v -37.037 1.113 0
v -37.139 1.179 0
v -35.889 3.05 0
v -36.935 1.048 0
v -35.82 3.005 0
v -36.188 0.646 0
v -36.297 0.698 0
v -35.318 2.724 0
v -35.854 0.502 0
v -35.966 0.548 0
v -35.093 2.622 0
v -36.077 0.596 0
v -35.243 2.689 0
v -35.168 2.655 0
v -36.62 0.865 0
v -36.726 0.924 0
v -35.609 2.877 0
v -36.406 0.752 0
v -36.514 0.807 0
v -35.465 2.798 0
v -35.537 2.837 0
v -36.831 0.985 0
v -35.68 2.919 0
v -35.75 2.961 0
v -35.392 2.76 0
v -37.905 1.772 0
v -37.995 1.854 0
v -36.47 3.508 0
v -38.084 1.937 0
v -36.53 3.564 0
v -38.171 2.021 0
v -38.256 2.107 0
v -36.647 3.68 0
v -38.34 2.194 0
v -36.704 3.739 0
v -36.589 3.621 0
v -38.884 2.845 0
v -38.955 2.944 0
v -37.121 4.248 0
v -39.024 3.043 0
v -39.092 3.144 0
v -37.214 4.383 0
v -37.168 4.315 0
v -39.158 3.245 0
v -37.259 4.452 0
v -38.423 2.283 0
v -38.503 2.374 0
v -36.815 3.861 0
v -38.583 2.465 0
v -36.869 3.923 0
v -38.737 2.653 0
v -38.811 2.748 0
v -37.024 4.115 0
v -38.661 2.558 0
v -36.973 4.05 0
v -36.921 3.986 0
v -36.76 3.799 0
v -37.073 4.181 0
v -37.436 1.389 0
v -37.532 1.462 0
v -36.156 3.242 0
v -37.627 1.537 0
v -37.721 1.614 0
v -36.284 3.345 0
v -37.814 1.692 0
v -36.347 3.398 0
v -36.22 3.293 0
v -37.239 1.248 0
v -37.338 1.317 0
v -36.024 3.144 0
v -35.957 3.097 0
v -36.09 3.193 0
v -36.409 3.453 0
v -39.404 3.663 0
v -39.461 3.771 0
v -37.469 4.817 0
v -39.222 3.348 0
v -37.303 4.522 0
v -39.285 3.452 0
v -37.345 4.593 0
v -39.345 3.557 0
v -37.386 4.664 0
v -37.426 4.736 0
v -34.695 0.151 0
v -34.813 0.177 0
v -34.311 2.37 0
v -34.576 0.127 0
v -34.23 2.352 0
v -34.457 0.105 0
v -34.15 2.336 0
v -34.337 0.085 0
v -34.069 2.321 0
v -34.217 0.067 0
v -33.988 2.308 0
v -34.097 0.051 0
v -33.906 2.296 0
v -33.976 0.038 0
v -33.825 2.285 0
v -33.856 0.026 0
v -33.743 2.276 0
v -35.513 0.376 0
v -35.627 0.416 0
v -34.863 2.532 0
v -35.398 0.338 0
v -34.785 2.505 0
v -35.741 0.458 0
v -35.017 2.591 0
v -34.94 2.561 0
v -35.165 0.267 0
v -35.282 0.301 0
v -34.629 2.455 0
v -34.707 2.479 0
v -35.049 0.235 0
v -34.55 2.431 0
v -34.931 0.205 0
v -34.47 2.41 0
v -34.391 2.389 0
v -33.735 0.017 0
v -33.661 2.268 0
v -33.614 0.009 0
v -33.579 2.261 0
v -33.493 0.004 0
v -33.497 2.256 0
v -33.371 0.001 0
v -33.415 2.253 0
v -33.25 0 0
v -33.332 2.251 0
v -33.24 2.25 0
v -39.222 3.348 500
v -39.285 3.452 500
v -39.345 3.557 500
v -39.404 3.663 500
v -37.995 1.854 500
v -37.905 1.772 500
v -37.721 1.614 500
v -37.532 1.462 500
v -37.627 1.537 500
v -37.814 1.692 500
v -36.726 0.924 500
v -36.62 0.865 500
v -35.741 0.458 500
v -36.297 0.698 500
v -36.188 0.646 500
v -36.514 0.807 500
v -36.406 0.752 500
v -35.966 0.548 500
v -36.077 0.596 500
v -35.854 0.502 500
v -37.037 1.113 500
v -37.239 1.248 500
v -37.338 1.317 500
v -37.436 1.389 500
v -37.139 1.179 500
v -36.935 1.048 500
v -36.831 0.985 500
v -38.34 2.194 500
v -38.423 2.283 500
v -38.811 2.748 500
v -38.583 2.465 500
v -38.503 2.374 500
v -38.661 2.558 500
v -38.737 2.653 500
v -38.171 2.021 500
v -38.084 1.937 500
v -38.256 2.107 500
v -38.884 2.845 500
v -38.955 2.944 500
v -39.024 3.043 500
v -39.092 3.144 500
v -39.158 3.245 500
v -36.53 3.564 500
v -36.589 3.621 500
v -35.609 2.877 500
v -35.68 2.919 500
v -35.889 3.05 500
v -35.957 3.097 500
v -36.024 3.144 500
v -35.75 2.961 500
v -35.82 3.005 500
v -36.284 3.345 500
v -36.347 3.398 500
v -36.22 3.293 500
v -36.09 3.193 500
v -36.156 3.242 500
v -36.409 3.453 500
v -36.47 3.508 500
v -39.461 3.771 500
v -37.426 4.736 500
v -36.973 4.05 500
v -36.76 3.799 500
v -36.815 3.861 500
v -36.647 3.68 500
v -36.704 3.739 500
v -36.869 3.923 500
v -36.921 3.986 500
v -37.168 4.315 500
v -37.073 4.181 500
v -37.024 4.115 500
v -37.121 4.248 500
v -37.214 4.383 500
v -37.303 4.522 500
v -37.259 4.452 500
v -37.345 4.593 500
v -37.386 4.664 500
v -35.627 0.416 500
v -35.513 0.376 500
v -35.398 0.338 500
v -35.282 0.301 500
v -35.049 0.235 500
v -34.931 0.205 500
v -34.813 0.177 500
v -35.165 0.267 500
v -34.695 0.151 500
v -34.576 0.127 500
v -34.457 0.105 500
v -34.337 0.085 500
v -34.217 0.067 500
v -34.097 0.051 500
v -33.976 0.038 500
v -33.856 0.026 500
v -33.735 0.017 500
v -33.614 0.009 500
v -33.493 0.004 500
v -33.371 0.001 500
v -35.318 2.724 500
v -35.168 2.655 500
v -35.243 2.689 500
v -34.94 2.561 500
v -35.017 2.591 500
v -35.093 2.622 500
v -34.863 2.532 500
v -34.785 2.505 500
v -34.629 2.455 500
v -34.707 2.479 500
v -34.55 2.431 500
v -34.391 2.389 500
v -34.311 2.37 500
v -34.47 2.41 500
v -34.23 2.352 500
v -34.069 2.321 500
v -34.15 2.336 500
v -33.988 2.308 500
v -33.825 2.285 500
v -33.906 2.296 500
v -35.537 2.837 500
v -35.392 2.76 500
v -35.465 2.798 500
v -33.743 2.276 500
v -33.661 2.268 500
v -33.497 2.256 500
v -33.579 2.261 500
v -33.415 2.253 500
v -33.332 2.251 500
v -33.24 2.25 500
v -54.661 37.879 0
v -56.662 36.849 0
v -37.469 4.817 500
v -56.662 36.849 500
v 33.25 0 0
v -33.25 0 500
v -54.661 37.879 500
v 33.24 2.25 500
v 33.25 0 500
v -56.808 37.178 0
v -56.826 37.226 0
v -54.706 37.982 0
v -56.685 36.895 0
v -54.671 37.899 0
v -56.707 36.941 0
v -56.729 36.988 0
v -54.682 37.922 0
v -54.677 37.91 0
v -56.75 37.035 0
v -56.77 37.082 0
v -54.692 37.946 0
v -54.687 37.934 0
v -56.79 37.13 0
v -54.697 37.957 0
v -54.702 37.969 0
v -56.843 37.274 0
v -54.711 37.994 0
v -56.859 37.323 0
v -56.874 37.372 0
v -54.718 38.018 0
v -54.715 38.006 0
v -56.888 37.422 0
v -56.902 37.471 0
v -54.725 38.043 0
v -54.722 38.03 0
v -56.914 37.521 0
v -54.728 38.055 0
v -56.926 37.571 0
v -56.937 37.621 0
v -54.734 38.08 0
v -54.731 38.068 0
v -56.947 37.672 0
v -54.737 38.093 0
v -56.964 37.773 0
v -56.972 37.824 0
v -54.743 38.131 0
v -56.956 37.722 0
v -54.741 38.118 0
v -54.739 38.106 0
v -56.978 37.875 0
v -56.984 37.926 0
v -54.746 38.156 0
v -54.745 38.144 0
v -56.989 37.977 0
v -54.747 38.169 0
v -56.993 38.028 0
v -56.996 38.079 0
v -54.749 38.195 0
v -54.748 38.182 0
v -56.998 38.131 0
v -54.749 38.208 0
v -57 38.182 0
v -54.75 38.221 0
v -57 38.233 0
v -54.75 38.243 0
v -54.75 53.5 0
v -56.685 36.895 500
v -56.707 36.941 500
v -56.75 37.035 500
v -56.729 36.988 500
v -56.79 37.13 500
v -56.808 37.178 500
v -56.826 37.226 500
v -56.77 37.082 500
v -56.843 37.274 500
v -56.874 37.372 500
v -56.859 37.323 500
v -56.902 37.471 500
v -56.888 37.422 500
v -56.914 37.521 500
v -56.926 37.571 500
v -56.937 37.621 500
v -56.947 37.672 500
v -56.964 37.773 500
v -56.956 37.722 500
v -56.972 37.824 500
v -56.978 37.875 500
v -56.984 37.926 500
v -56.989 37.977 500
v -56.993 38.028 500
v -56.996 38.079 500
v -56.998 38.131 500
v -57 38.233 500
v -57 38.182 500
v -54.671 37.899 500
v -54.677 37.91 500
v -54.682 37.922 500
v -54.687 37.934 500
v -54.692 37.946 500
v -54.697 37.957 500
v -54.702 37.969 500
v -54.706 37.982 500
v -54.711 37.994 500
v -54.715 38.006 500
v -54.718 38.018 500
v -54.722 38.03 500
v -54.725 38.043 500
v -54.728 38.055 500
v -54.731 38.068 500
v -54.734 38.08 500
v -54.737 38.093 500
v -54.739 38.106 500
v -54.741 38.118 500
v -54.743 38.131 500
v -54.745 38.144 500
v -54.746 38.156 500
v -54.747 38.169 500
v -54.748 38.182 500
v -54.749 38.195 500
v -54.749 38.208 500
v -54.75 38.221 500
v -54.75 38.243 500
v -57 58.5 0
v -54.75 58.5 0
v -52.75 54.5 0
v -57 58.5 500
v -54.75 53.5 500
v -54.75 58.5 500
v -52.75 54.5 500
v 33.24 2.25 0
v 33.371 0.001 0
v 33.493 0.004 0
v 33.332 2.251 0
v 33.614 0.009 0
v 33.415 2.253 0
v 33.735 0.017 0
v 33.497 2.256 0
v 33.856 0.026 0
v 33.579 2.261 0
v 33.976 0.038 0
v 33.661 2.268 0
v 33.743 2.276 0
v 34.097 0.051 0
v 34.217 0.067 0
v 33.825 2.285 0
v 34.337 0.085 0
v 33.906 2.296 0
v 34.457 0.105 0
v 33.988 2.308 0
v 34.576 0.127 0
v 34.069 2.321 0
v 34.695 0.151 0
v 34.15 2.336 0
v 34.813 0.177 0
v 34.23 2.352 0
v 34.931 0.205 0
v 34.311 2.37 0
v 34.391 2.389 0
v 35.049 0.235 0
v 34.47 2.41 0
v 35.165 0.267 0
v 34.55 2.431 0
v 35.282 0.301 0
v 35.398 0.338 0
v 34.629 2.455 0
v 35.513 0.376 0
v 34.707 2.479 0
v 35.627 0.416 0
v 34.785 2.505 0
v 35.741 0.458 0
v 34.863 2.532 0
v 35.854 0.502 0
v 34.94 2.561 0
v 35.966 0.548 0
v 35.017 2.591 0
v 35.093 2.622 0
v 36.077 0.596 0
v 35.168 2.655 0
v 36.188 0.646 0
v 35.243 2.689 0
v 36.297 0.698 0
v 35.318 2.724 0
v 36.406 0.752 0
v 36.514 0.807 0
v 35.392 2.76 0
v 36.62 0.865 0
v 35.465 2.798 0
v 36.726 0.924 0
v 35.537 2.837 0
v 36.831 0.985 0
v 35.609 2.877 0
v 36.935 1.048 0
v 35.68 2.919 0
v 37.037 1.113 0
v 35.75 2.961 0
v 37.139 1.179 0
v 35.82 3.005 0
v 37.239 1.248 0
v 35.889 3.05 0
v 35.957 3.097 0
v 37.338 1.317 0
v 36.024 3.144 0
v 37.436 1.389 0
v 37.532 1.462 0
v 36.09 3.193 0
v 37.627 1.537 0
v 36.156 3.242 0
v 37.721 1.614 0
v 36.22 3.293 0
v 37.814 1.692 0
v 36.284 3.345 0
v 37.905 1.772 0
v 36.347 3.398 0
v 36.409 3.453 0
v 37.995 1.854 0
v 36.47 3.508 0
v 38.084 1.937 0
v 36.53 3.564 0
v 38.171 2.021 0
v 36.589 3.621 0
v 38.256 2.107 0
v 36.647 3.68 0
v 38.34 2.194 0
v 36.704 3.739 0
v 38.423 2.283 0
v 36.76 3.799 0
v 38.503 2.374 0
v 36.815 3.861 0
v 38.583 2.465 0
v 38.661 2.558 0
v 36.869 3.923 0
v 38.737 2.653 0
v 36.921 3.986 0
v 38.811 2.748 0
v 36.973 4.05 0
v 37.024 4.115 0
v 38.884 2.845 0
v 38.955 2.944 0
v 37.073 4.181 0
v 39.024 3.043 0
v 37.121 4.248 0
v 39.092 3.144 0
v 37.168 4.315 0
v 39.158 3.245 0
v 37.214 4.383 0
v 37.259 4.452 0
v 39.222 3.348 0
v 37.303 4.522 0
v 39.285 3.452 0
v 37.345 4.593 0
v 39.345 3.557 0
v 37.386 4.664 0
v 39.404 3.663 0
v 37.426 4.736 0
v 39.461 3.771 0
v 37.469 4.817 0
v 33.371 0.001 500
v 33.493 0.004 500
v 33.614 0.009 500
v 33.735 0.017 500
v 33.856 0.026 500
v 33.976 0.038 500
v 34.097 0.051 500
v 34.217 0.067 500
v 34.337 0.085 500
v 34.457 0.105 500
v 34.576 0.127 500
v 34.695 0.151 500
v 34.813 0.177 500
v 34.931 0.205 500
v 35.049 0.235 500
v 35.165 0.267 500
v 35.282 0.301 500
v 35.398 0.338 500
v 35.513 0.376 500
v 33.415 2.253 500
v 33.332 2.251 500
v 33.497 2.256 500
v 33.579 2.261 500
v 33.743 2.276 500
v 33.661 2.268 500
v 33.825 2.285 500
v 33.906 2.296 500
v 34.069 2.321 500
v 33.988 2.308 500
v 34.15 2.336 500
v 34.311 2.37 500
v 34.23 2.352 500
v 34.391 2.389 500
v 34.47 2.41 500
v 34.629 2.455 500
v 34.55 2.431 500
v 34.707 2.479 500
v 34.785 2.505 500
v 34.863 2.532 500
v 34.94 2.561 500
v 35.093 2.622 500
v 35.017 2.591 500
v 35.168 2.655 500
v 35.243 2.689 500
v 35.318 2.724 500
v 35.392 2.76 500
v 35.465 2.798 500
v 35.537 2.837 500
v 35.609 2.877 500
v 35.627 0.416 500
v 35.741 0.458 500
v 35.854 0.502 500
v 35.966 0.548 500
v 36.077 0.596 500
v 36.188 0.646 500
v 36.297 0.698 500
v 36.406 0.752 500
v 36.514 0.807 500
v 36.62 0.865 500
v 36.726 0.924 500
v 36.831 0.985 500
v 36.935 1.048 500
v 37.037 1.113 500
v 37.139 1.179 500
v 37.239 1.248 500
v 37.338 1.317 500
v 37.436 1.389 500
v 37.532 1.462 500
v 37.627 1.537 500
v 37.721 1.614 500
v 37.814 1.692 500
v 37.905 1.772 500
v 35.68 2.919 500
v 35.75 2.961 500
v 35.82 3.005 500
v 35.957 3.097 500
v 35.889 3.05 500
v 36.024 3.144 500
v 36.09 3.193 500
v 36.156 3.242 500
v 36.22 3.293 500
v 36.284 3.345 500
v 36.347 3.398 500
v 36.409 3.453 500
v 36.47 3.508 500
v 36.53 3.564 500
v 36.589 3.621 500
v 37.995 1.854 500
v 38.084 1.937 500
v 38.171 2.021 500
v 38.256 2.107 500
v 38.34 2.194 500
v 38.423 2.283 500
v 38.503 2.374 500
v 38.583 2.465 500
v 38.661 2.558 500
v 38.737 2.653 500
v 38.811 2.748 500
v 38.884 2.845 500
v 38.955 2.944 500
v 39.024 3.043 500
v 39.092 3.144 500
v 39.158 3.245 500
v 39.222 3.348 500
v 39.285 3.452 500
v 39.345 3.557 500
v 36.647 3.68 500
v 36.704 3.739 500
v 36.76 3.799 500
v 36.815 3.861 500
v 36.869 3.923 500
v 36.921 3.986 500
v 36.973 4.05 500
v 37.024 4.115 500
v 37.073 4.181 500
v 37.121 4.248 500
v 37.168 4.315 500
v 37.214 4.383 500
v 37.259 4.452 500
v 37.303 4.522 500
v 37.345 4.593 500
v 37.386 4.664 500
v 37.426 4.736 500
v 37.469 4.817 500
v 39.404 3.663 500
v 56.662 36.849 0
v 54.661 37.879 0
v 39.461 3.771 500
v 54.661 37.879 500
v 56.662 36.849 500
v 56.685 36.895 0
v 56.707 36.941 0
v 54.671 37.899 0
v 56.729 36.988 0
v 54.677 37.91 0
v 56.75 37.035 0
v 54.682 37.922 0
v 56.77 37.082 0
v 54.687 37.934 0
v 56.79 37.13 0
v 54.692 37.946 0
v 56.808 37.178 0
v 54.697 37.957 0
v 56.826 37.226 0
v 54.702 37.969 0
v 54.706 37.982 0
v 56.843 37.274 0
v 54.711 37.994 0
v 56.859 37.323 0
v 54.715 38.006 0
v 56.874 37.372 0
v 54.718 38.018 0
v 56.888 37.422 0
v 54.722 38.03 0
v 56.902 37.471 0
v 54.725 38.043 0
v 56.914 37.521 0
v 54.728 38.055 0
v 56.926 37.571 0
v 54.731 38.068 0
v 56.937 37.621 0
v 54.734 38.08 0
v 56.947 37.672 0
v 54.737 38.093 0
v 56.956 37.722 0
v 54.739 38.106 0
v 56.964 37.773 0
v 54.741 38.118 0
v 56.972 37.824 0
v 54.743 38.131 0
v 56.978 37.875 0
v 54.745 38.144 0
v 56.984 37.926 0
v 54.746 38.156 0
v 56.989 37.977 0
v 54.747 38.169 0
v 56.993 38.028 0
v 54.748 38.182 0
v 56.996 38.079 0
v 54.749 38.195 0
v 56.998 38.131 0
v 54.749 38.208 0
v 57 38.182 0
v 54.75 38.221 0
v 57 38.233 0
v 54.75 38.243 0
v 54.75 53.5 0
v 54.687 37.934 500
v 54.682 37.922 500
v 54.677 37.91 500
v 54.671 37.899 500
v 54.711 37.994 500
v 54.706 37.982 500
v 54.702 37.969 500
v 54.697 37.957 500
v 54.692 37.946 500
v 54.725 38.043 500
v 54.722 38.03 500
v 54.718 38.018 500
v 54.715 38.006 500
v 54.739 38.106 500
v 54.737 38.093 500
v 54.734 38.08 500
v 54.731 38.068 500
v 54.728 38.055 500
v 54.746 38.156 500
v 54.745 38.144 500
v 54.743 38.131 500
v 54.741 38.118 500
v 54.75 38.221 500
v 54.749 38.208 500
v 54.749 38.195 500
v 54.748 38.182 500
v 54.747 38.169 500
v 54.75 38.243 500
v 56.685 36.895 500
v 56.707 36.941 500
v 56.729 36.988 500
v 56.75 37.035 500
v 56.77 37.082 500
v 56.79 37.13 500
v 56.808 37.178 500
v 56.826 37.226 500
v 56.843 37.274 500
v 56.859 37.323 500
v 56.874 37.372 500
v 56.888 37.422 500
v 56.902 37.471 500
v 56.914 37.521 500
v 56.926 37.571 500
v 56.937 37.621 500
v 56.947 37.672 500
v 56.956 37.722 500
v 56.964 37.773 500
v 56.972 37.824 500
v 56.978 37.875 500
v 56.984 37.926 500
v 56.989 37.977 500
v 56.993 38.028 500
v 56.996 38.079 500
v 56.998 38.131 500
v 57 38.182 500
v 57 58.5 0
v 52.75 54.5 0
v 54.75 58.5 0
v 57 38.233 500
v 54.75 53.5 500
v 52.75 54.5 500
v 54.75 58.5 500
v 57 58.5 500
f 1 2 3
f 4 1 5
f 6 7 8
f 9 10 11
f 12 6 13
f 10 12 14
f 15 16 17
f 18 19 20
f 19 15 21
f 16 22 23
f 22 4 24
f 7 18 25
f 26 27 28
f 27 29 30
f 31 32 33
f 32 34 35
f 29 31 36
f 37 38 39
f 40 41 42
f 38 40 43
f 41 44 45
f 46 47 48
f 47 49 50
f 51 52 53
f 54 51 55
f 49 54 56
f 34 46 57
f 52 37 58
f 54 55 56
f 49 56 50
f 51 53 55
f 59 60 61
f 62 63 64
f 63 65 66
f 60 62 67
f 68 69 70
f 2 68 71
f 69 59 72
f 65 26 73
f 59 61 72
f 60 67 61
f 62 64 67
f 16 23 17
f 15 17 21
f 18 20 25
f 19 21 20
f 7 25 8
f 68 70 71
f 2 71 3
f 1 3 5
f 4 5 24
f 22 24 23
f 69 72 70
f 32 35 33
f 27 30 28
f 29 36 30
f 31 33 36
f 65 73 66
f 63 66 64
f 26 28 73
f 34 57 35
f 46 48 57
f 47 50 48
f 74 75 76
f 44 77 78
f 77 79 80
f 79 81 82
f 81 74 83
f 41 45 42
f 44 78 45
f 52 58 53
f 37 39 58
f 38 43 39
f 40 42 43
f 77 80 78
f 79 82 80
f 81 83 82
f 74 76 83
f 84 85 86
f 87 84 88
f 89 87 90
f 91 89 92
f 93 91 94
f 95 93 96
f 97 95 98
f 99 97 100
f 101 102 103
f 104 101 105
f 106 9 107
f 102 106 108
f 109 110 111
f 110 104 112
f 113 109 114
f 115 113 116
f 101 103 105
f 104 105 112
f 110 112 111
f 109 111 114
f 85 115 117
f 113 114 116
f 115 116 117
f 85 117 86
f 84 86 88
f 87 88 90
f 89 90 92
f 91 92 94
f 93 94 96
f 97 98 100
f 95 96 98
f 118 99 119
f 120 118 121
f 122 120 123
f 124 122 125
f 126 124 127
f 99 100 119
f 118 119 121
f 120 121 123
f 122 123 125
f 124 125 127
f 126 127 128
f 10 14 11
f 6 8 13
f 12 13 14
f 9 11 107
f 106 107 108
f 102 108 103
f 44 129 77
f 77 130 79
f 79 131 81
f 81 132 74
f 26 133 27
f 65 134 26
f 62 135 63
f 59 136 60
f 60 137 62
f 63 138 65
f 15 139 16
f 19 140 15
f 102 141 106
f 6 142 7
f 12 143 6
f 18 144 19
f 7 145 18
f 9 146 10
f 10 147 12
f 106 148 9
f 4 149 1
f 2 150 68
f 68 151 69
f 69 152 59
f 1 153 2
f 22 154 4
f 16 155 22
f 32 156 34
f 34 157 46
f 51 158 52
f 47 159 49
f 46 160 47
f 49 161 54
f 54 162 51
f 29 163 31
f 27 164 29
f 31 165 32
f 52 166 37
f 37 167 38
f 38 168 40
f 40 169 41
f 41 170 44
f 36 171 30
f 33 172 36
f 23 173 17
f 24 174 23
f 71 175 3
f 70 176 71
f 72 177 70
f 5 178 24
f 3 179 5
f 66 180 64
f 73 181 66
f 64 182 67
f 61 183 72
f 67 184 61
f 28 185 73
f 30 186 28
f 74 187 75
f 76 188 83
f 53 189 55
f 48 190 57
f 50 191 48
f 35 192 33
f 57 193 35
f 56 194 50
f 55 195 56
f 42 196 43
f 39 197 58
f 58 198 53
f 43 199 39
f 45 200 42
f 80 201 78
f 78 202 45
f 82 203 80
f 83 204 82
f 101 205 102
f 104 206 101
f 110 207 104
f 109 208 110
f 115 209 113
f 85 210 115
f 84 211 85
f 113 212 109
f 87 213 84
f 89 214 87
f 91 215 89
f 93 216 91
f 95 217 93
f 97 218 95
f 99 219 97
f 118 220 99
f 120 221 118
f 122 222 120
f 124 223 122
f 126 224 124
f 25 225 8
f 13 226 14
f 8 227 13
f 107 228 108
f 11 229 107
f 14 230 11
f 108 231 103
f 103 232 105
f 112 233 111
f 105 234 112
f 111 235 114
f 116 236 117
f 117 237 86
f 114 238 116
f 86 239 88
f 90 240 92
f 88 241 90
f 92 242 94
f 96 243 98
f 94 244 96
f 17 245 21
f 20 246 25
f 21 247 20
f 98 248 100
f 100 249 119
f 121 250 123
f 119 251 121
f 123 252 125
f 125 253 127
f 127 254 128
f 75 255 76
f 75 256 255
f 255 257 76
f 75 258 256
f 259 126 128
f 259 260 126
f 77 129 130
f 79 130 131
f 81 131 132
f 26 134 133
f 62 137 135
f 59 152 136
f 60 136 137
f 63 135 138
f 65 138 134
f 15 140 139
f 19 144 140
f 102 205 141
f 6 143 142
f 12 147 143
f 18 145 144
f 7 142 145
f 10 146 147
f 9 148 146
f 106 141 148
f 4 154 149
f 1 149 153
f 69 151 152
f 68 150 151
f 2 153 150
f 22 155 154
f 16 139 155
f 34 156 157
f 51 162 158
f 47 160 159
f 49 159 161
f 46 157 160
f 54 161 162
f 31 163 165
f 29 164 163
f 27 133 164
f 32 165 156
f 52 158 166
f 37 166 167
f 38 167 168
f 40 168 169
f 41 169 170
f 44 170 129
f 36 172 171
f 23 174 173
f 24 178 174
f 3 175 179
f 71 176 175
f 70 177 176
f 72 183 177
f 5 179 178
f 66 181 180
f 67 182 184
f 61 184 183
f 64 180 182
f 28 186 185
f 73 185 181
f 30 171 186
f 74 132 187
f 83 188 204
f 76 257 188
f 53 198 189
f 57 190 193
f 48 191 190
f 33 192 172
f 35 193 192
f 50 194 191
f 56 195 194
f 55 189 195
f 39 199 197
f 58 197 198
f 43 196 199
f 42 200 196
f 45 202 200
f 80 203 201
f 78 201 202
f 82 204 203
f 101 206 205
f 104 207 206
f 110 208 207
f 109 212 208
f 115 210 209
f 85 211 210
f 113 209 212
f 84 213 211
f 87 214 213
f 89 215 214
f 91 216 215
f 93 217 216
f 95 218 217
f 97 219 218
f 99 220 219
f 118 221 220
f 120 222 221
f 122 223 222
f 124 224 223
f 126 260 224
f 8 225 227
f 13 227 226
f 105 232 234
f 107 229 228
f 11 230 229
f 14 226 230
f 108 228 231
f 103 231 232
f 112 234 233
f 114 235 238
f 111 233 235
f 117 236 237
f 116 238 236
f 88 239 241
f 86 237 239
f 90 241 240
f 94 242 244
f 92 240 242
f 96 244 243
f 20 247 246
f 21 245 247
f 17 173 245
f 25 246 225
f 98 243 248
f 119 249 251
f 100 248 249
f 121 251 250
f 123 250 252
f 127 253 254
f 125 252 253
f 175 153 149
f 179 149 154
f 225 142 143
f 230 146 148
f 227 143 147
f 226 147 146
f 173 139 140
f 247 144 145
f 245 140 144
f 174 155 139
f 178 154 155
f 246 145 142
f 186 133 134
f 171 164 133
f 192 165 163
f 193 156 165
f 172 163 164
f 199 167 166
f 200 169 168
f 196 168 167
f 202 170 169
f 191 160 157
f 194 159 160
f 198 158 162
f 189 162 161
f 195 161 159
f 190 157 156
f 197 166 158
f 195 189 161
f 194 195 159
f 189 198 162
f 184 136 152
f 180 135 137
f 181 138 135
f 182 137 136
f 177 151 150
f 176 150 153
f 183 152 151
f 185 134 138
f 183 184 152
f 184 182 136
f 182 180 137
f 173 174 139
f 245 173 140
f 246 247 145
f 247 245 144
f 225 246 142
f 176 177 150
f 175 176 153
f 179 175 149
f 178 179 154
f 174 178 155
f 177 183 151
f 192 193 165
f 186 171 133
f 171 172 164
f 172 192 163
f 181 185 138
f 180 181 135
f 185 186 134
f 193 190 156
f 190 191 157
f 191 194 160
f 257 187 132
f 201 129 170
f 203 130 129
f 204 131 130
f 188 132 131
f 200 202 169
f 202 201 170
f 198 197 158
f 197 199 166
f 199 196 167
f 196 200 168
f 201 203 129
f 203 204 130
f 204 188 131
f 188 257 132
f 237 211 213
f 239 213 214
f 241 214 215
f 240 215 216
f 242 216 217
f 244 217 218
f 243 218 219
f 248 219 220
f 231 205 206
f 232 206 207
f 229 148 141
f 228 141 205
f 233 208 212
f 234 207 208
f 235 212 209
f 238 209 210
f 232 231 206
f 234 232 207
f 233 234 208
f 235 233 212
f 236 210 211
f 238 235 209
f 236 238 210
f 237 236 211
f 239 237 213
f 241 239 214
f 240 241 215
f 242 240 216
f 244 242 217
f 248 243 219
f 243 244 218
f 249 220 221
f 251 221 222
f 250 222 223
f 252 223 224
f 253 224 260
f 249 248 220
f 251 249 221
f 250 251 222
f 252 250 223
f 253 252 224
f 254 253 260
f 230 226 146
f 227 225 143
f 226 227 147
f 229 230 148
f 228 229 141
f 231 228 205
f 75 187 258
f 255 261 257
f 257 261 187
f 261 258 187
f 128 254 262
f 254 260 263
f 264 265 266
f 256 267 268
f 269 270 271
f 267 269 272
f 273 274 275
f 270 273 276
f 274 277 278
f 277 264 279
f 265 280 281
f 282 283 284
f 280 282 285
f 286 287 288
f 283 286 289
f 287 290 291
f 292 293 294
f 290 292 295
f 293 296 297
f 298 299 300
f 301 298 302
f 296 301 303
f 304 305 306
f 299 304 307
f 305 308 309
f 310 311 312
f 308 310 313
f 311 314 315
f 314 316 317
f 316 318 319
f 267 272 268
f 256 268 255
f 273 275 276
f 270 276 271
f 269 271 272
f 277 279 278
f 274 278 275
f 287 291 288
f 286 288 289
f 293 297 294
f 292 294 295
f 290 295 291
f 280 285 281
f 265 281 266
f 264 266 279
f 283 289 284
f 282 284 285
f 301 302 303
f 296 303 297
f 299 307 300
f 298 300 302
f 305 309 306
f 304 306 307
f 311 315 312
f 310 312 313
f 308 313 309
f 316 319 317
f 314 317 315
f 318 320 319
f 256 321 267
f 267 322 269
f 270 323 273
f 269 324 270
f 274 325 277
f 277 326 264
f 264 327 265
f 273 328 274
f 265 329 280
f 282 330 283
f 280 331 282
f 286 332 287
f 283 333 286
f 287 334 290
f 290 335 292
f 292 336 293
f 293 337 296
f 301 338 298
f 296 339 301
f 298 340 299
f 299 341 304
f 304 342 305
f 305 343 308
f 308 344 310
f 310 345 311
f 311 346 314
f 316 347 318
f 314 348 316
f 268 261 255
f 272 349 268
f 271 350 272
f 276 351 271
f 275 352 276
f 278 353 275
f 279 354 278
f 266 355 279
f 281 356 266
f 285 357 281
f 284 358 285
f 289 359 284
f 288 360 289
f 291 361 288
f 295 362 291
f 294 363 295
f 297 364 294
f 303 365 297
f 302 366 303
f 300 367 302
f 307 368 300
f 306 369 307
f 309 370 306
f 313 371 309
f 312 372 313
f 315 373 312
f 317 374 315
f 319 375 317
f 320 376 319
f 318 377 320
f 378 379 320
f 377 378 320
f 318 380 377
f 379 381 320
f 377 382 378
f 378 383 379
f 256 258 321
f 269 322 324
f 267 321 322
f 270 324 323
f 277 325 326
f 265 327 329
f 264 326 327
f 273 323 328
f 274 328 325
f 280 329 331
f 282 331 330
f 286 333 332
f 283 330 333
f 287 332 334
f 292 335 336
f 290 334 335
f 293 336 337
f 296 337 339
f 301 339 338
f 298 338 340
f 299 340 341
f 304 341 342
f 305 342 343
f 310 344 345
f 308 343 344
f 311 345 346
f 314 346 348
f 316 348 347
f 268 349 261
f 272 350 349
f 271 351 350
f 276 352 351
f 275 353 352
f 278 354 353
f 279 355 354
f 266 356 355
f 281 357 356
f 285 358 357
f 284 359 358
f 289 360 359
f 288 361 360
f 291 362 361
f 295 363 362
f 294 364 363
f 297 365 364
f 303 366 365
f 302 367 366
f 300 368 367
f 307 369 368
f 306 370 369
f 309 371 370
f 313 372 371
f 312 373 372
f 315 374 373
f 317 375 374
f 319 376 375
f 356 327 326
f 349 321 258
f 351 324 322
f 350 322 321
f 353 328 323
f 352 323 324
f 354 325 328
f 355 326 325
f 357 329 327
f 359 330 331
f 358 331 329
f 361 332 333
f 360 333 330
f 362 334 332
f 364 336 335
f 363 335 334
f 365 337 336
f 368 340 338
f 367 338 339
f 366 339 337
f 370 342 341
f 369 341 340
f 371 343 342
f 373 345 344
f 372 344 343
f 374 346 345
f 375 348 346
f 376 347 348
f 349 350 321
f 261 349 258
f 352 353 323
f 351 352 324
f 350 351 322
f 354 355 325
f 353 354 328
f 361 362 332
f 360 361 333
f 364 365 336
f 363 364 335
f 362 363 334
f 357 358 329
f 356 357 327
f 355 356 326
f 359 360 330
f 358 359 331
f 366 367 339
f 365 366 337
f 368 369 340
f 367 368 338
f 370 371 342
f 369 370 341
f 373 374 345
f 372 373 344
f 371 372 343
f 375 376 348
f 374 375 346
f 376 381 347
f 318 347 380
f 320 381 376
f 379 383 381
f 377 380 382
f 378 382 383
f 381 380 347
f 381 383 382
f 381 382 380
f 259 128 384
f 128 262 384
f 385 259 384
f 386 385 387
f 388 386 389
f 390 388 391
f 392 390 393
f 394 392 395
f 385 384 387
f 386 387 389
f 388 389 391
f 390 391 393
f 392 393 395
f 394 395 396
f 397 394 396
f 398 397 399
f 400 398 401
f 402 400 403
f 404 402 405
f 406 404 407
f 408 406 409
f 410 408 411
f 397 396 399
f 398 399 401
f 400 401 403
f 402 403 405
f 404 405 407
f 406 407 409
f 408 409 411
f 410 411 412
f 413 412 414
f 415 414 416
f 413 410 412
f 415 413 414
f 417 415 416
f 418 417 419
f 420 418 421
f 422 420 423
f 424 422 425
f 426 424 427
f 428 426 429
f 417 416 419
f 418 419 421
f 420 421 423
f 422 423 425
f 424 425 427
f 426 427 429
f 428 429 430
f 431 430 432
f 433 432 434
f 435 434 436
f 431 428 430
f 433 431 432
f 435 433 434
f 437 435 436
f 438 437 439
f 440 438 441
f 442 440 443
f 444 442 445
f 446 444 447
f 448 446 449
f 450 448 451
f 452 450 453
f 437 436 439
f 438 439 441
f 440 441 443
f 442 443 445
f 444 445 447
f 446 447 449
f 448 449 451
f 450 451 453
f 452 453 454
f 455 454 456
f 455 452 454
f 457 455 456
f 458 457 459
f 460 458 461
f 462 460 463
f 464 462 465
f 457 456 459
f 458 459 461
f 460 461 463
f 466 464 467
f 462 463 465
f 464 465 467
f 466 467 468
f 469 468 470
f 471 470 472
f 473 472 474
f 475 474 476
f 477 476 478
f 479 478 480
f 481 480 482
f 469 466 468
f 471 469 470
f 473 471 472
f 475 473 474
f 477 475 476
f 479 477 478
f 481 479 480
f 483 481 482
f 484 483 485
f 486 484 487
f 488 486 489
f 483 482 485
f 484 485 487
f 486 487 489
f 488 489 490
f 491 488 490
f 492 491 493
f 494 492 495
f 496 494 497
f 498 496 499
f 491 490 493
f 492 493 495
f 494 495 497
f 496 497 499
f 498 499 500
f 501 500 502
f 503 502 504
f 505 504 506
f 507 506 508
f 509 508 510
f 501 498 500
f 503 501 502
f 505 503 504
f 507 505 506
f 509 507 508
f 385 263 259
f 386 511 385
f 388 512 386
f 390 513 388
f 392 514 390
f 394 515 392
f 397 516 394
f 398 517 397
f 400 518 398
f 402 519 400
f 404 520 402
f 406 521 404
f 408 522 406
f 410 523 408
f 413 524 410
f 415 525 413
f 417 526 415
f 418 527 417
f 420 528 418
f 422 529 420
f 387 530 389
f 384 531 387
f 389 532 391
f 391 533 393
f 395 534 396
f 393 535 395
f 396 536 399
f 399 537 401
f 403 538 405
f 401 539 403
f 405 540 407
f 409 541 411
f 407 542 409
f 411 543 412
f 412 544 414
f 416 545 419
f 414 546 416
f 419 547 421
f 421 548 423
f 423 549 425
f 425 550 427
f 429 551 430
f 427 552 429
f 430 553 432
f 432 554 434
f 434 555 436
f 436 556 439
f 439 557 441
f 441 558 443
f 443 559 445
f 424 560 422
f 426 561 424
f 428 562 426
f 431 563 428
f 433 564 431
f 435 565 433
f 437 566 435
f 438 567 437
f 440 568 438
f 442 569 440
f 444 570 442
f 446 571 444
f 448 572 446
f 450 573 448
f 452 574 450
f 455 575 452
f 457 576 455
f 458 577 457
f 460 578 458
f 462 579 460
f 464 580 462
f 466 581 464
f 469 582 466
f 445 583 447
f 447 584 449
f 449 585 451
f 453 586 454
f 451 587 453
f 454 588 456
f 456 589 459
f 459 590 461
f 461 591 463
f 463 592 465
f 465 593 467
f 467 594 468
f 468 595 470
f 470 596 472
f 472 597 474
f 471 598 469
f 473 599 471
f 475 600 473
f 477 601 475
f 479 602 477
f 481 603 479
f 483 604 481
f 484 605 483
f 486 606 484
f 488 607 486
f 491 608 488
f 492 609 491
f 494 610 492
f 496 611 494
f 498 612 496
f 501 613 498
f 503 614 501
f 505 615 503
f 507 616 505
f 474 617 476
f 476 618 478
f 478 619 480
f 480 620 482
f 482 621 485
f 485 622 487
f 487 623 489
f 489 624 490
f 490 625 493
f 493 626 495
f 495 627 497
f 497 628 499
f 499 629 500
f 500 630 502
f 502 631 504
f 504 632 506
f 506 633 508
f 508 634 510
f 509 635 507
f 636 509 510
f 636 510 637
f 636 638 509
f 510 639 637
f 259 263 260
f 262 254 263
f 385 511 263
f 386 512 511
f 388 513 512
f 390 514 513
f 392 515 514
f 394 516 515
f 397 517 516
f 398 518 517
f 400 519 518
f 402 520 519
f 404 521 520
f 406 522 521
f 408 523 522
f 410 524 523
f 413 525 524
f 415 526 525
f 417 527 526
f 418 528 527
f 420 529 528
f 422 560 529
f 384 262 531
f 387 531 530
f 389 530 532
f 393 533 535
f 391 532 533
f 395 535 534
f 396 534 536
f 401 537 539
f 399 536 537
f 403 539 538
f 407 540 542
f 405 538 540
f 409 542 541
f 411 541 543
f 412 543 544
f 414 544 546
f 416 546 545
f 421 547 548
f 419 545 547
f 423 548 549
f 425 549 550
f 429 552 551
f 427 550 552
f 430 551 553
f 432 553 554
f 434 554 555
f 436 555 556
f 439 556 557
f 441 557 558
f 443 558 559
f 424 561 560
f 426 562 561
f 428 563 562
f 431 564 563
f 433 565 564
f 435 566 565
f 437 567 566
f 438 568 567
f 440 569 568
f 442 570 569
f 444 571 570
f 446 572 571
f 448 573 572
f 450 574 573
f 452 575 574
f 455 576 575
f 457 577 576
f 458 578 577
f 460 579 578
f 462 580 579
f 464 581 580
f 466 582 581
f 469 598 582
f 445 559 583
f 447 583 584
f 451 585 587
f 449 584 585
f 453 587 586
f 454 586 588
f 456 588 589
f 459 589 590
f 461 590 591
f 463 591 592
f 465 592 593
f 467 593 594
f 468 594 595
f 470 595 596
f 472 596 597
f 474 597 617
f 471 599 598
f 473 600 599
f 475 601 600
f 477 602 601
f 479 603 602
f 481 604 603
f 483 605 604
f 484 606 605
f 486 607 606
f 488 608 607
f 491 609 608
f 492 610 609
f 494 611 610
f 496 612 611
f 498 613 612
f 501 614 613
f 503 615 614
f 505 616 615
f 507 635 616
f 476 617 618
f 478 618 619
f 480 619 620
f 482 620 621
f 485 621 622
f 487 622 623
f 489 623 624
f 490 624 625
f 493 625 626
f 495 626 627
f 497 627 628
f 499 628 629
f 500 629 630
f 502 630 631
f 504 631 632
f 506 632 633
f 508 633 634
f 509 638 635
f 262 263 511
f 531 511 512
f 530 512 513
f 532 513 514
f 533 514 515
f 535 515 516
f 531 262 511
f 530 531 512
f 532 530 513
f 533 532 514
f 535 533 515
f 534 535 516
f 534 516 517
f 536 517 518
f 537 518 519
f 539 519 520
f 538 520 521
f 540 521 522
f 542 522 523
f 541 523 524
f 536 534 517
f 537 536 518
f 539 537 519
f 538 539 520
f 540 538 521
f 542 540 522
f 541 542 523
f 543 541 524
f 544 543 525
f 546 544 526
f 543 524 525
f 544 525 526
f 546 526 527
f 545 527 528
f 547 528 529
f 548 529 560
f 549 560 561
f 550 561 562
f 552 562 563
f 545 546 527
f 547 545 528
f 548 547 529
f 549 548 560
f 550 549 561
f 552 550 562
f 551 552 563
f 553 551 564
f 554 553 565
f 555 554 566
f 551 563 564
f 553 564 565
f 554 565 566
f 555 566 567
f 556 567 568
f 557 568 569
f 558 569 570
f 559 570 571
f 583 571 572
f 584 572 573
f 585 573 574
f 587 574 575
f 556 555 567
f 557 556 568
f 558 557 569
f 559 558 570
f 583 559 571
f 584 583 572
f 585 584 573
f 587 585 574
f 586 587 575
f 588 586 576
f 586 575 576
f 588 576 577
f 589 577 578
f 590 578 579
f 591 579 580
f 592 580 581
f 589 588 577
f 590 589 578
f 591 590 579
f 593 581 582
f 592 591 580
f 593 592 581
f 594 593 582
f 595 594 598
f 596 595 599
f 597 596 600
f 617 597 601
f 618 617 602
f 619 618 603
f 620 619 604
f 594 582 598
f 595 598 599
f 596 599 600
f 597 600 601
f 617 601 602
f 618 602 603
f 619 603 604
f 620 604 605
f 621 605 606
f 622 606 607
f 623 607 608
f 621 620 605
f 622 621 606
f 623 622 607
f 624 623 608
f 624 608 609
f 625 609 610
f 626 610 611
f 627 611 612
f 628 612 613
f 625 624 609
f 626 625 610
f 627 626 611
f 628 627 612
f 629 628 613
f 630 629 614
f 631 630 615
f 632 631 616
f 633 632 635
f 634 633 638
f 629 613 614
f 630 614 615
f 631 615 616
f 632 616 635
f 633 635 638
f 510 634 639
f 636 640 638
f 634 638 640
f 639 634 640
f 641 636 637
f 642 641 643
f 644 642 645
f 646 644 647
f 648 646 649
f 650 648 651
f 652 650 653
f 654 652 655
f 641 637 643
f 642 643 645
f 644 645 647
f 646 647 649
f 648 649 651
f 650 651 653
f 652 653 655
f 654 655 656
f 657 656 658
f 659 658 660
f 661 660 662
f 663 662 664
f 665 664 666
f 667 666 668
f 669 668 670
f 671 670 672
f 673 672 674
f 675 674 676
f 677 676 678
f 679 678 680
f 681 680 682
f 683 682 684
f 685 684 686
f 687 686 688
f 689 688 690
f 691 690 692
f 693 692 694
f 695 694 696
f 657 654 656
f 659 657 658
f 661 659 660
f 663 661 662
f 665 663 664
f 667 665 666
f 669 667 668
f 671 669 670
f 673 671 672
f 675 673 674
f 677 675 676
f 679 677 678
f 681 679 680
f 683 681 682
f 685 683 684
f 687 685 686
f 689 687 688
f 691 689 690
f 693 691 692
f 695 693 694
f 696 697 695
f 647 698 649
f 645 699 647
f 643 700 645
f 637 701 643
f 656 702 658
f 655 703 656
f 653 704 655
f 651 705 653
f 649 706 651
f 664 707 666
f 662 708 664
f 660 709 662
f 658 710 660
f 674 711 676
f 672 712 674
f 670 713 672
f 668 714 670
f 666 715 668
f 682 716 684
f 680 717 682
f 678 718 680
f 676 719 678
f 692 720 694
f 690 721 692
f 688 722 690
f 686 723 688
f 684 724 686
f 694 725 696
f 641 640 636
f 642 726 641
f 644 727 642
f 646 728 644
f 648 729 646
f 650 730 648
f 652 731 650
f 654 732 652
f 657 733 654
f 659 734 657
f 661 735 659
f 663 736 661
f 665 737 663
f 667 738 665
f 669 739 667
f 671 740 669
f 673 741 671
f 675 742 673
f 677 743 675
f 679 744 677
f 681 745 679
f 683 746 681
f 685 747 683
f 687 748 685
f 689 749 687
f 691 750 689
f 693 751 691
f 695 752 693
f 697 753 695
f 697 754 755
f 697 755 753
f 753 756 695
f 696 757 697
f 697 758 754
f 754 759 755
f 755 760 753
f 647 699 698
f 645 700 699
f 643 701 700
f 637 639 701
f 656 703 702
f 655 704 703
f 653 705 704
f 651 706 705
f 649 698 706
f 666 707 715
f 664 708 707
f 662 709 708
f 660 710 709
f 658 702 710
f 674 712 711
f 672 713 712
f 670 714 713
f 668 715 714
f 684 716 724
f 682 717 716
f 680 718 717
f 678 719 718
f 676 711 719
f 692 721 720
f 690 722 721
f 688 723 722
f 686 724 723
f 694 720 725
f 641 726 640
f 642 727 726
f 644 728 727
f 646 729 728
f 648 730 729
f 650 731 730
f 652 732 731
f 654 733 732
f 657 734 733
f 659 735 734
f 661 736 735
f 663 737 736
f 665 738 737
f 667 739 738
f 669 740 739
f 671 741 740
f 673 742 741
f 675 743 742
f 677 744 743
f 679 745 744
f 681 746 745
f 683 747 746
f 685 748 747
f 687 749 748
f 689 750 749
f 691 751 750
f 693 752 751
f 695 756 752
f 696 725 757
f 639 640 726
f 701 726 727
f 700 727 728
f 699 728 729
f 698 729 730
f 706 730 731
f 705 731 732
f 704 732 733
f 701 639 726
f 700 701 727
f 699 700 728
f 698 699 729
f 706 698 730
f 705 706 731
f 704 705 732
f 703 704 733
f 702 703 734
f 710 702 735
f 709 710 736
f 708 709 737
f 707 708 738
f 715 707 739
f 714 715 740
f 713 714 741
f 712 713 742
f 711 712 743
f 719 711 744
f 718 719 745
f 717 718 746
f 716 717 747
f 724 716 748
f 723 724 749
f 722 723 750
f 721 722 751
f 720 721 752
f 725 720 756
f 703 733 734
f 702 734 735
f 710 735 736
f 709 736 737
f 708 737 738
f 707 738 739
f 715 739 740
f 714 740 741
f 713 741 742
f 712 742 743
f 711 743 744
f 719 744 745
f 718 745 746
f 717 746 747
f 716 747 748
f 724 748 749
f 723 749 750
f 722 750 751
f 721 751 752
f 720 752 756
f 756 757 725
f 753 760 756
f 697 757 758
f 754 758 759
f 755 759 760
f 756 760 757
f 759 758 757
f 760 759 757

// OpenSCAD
$fn = 50;

difference() {
	union() {
		linear_extrude(height = 500.0) {
			polygon(points = [[56.9995601, 38.1820114], [56.9982404, 38.1306519], [56.9960415, 38.0793225], [56.9929638, 38.0280383], [56.9890084, 37.9768144], [56.9841763, 37.9256657], [56.978469, 37.8746072], [56.9718882, 37.823654], [56.9644358, 37.7728209], [56.956114, 37.7221229], [56.9469252, 37.6715749], [56.9368722, 37.6211916], [56.9259578, 37.5709879], [56.9141852, 37.5209784], [56.901558, 37.4711779], [56.8880798, 37.4216009], [56.8737546, 37.372262], [56.8585866, 37.3231757], [56.8425802, 37.2743563], [56.8257401, 37.2258182], [56.8080713, 37.1775755], [56.7895789, 37.1296426], [56.7702684, 37.0820333], [56.7501454, 37.0347617], [56.7292159, 36.9878416], [56.7074859, 36.9412868], [56.6849619, 36.895111], [56.6616504, 36.8493277], [39.5307002, 3.9051927], [39.4717998, 3.7942803], [39.4109872, 3.6844047], [39.3482805, 3.575599], [39.2836987, 3.4678957], [39.2172609, 3.3613272], [39.1489873, 3.2559255], [39.0788983, 3.1517221], [39.0070149, 3.0487484], [38.9333586, 2.9470352], [38.8579516, 2.8466131], [38.7808165, 2.7475122], [38.7019765, 2.6497622], [38.6214552, 2.5533924], [38.5392767, 2.4584319], [38.4554658, 2.3649089], [38.3700475, 2.2728517], [38.2830475, 2.1822879], [38.1944919, 2.0932445], [38.1044072, 2.0057484], [38.0128206, 1.9198257], [37.9197594, 1.8355024], [37.8252517, 1.7528035], [37.7293256, 1.6717541], [37.6320102, 1.5923783], [37.5333344, 1.5147001], [37.433328, 1.4387427], [37.3320209, 1.3645289], [37.2294436, 1.2920809], [37.1256268, 1.2214206], [37.0206017, 1.152569], [36.9143997, 1.085547], [36.8070528, 1.0203745], [36.6985931, 0.9570711], [36.5890533, 0.8956559], [36.478466, 0.8361472], [36.3668647, 0.778563], [36.2542826, 0.7229204], [36.1407537, 0.6692362], [36.0263119, 0.6175265], [35.9109917, 0.5678068], [35.7948275, 0.520092], [35.6778543, 0.4743964], [35.5601072, 0.4307338], [35.4416214, 0.3891172], [35.3224326, 0.3495592], [35.2025764, 0.3120716], [35.082089, 0.2766656], [34.9610063, 0.2433519], [34.8393648, 0.2121405], [34.7172009, 0.1830407], [34.5945513, 0.1560613], [34.4714528, 0.1312103], [34.3479423, 0.1084953], [34.2240569, 0.0879229], [34.0998338, 0.0694995], [33.9753101, 0.0532305], [33.8505234, 0.0391209], [33.725511, 0.0271747], [33.6003104, 0.0173958], [33.4749592, 0.0097868], [33.3494951, 0.0043502], [33.2239556, 0.0010876], [33.0983784, -0.0], [-33.0983784, -0.0], [-33.2239556, 0.0010876], [-33.3494951, 0.0043502], [-33.4749592, 0.0097868], [-33.6003104, 0.0173958], [-33.725511, 0.0271747], [-33.8505234, 0.0391209], [-33.9753101, 0.0532305], [-34.0998338, 0.0694995], [-34.2240569, 0.0879229], [-34.3479423, 0.1084953], [-34.4714528, 0.1312103], [-34.5945513, 0.1560613], [-34.7172009, 0.1830407], [-34.8393648, 0.2121405], [-34.9610063, 0.2433519], [-35.082089, 0.2766656], [-35.2025764, 0.3120716], [-35.3224326, 0.3495592], [-35.4416214, 0.3891172], [-35.5601072, 0.4307338], [-35.6778543, 0.4743964], [-35.7948275, 0.520092], [-35.9109917, 0.5678068], [-36.0263119, 0.6175265], [-36.1407537, 0.6692362], [-36.2542826, 0.7229204], [-36.3668647, 0.778563], [-36.478466, 0.8361472], [-36.5890533, 0.8956559], [-36.6985931, 0.9570711], [-36.8070528, 1.0203745], [-36.9143997, 1.085547], [-37.0206017, 1.152569], [-37.1256268, 1.2214206], [-37.2294436, 1.2920809], [-37.3320209, 1.3645289], [-37.433328, 1.4387427], [-37.5333344, 1.5147001], [-37.6320102, 1.5923783], [-37.7293256, 1.6717541], [-37.8252517, 1.7528035], [-37.9197594, 1.8355024], [-38.0128206, 1.9198257], [-38.1044072, 2.0057484], [-38.1944919, 2.0932445], [-38.2830475, 2.1822879], [-38.3700475, 2.2728517], [-38.4554658, 2.3649089], [-38.5392767, 2.4584319], [-38.6214552, 2.5533924], [-38.7019765, 2.6497622], [-38.7808165, 2.7475122], [-38.8579516, 2.8466131], [-38.9333586, 2.9470352], [-39.0070149, 3.0487484], [-39.0788983, 3.1517221], [-39.1489873, 3.2559255], [-39.2172609, 3.3613272], [-39.2836987, 3.4678957], [-39.3482805, 3.575599], [-39.4109872, 3.6844047], [-39.4717998, 3.7942803], [-39.5307002, 3.9051927], [-56.6616504, 36.8493277], [-56.6849619, 36.895111], [-56.7074859, 36.9412868], [-56.7292159, 36.9878416], [-56.7501454, 37.0347617], [-56.7702684, 37.0820333], [-56.7895789, 37.1296426], [-56.8080713, 37.1775755], [-56.8257401, 37.2258182], [-56.8425802, 37.2743563], [-56.8585866, 37.3231757], [-56.8737546, 37.372262], [-56.8880798, 37.4216009], [-56.901558, 37.4711779], [-56.9141852, 37.5209784], [-56.9259578, 37.5709879], [-56.9368722, 37.6211916], [-56.9469252, 37.6715749], [-56.956114, 37.7221229], [-56.9644358, 37.7728209], [-56.9718882, 37.823654], [-56.978469, 37.8746072], [-56.9841763, 37.9256657], [-56.9890084, 37.9768144], [-56.9929638, 38.0280383], [-56.9960415, 38.0793225], [-56.9982404, 38.1306519], [-56.9995601, 38.1820114], [-57.0, 38.2333859], [-57.0, 58.5], [-54.75, 58.5], [-52.75, 54.5], [-54.75, 53.5], [-54.75, 38.2430192], [-54.7498075, 38.2205437], [-54.7494777, 38.2077052], [-54.748928, 38.1948743], [-54.7481587, 38.1820547], [-54.7471699, 38.1692501], [-54.745962, 38.1564643], [-54.7445354, 38.1437011], [-54.7428903, 38.1309642], [-54.7410275, 38.1182573], [-54.7389472, 38.1055842], [-54.7366503, 38.0929486], [-54.7341373, 38.0803542], [-54.731409, 38.0678046], [-54.7284662, 38.0553036], [-54.7253097, 38.0428549], [-54.7219405, 38.030462], [-54.7183596, 38.0181286], [-54.714568, 38.0058584], [-54.7105669, 37.9936549], [-54.7063573, 37.9815217], [-54.7019406, 37.9694623], [-54.697318, 37.9574804], [-54.6924909, 37.9455794], [-54.6874607, 37.9337628], [-54.6822289, 37.9220341], [-54.676797, 37.9103967], [-54.6711666, 37.898854], [-54.6609683, 37.8788246], [-37.5389576, 4.951881], [-37.4937673, 4.8667852], [-37.4518282, 4.7910103], [-37.408583, 4.7159731], [-37.3640445, 4.6416962], [-37.3182262, 4.568202], [-37.2711417, 4.4955123], [-37.2228052, 4.4236492], [-37.1732313, 4.352634], [-37.1224347, 4.2824882], [-37.0704308, 4.2132327], [-37.0172351, 4.1448884], [-36.9628636, 4.0774757], [-36.9073326, 4.011015], [-36.8506587, 3.945526], [-36.792859, 3.8810285], [-36.7339509, 3.8175419], [-36.6739519, 3.7550851], [-36.6128801, 3.6936769], [-36.5507538, 3.6333358], [-36.4875917, 3.5740798], [-36.4234126, 3.5159267], [-36.358236, 3.458894], [-36.2920812, 3.4029988], [-36.2249682, 3.3482578], [-36.1569171, 3.2946875], [-36.0879483, 3.242304], [-36.0180826, 3.1911229], [-35.9473408, 3.1411596], [-35.8757442, 3.0924292], [-35.8033143, 3.0449462], [-35.7300728, 2.9987248], [-35.6560417, 2.9537791], [-35.5812432, 2.9101223], [-35.5056997, 2.8677677], [-35.429434, 2.8267279], [-35.3524688, 2.7870153], [-35.2748273, 2.7486418], [-35.1965328, 2.7116188], [-35.1176088, 2.6759575], [-35.0380789, 2.6416687], [-34.9579671, 2.6087625], [-34.8772973, 2.5772488], [-34.7960937, 2.5471372], [-34.7143808, 2.5184366], [-34.632183, 2.4911556], [-34.549525, 2.4653026], [-34.4664316, 2.4408851], [-34.3829277, 2.4179105], [-34.2990384, 2.3963857], [-34.2147889, 2.3763172], [-34.1302044, 2.357711], [-34.0453103, 2.3405727], [-33.9601321, 2.3249074], [-33.8746953, 2.3107199], [-33.7890256, 2.2980143], [-33.7031487, 2.2867945], [-33.6170903, 2.2770638], [-33.5308763, 2.2688253], [-33.4445326, 2.2620813], [-33.3580849, 2.2568338], [-33.2715594, 2.2530845], [-33.1849819, 2.2508345], [-33.0886348, 2.25], [33.0886348, 2.25], [33.1849819, 2.2508345], [33.2715594, 2.2530845], [33.3580849, 2.2568338], [33.4445326, 2.2620813], [33.5308763, 2.2688253], [33.6170903, 2.2770638], [33.7031487, 2.2867945], [33.7890256, 2.2980143], [33.8746953, 2.3107199], [33.9601321, 2.3249074], [34.0453103, 2.3405727], [34.1302044, 2.357711], [34.2147889, 2.3763172], [34.2990384, 2.3963857], [34.3829277, 2.4179105], [34.4664316, 2.4408851], [34.549525, 2.4653026], [34.632183, 2.4911556], [34.7143808, 2.5184366], [34.7960937, 2.5471372], [34.8772973, 2.5772488], [34.9579671, 2.6087625], [35.0380789, 2.6416687], [35.1176088, 2.6759575], [35.1965328, 2.7116188], [35.2748273, 2.7486418], [35.3524688, 2.7870153], [35.429434, 2.8267279], [35.5056997, 2.8677677], [35.5812432, 2.9101223], [35.6560417, 2.9537791], [35.7300728, 2.9987248], [35.8033143, 3.0449462], [35.8757442, 3.0924292], [35.9473408, 3.1411596], [36.0180826, 3.1911229], [36.0879483, 3.242304], [36.1569171, 3.2946875], [36.2249682, 3.3482578], [36.2920812, 3.4029988], [36.358236, 3.458894], [36.4234126, 3.5159267], [36.4875917, 3.5740798], [36.5507538, 3.6333358], [36.6128801, 3.6936769], [36.6739519, 3.7550851], [36.7339509, 3.8175419], [36.792859, 3.8810285], [36.8506587, 3.945526], [36.9073326, 4.011015], [36.9628636, 4.0774757], [37.0172351, 4.1448884], [37.0704308, 4.2132327], [37.1224347, 4.2824882], [37.1732313, 4.352634], [37.2228052, 4.4236492], [37.2711417, 4.4955123], [37.3182262, 4.568202], [37.3640445, 4.6416962], [37.408583, 4.7159731], [37.4518282, 4.7910103], [37.4937673, 4.8667852], [37.5389576, 4.951881], [54.6609683, 37.8788246], [54.6711666, 37.898854], [54.676797, 37.9103967], [54.6822289, 37.9220341], [54.6874607, 37.9337628], [54.6924909, 37.9455794], [54.697318, 37.9574804], [54.7019406, 37.9694623], [54.7063573, 37.9815217], [54.7105669, 37.9936549], [54.714568, 38.0058584], [54.7183596, 38.0181286], [54.7219405, 38.030462], [54.7253097, 38.0428549], [54.7284662, 38.0553036], [54.731409, 38.0678046], [54.7341373, 38.0803542], [54.7366503, 38.0929486], [54.7389472, 38.1055842], [54.7410275, 38.1182573], [54.7428903, 38.1309642], [54.7445354, 38.1437011], [54.745962, 38.1564643], [54.7471699, 38.1692501], [54.7481587, 38.1820547], [54.748928, 38.1948743], [54.7494777, 38.2077052], [54.7498075, 38.2205437], [54.75, 38.2430192], [54.75, 53.5], [52.75, 54.5], [54.75, 58.5], [57.0, 58.5], [57.0, 38.2333859]]);
		}
	}
	union();
}
